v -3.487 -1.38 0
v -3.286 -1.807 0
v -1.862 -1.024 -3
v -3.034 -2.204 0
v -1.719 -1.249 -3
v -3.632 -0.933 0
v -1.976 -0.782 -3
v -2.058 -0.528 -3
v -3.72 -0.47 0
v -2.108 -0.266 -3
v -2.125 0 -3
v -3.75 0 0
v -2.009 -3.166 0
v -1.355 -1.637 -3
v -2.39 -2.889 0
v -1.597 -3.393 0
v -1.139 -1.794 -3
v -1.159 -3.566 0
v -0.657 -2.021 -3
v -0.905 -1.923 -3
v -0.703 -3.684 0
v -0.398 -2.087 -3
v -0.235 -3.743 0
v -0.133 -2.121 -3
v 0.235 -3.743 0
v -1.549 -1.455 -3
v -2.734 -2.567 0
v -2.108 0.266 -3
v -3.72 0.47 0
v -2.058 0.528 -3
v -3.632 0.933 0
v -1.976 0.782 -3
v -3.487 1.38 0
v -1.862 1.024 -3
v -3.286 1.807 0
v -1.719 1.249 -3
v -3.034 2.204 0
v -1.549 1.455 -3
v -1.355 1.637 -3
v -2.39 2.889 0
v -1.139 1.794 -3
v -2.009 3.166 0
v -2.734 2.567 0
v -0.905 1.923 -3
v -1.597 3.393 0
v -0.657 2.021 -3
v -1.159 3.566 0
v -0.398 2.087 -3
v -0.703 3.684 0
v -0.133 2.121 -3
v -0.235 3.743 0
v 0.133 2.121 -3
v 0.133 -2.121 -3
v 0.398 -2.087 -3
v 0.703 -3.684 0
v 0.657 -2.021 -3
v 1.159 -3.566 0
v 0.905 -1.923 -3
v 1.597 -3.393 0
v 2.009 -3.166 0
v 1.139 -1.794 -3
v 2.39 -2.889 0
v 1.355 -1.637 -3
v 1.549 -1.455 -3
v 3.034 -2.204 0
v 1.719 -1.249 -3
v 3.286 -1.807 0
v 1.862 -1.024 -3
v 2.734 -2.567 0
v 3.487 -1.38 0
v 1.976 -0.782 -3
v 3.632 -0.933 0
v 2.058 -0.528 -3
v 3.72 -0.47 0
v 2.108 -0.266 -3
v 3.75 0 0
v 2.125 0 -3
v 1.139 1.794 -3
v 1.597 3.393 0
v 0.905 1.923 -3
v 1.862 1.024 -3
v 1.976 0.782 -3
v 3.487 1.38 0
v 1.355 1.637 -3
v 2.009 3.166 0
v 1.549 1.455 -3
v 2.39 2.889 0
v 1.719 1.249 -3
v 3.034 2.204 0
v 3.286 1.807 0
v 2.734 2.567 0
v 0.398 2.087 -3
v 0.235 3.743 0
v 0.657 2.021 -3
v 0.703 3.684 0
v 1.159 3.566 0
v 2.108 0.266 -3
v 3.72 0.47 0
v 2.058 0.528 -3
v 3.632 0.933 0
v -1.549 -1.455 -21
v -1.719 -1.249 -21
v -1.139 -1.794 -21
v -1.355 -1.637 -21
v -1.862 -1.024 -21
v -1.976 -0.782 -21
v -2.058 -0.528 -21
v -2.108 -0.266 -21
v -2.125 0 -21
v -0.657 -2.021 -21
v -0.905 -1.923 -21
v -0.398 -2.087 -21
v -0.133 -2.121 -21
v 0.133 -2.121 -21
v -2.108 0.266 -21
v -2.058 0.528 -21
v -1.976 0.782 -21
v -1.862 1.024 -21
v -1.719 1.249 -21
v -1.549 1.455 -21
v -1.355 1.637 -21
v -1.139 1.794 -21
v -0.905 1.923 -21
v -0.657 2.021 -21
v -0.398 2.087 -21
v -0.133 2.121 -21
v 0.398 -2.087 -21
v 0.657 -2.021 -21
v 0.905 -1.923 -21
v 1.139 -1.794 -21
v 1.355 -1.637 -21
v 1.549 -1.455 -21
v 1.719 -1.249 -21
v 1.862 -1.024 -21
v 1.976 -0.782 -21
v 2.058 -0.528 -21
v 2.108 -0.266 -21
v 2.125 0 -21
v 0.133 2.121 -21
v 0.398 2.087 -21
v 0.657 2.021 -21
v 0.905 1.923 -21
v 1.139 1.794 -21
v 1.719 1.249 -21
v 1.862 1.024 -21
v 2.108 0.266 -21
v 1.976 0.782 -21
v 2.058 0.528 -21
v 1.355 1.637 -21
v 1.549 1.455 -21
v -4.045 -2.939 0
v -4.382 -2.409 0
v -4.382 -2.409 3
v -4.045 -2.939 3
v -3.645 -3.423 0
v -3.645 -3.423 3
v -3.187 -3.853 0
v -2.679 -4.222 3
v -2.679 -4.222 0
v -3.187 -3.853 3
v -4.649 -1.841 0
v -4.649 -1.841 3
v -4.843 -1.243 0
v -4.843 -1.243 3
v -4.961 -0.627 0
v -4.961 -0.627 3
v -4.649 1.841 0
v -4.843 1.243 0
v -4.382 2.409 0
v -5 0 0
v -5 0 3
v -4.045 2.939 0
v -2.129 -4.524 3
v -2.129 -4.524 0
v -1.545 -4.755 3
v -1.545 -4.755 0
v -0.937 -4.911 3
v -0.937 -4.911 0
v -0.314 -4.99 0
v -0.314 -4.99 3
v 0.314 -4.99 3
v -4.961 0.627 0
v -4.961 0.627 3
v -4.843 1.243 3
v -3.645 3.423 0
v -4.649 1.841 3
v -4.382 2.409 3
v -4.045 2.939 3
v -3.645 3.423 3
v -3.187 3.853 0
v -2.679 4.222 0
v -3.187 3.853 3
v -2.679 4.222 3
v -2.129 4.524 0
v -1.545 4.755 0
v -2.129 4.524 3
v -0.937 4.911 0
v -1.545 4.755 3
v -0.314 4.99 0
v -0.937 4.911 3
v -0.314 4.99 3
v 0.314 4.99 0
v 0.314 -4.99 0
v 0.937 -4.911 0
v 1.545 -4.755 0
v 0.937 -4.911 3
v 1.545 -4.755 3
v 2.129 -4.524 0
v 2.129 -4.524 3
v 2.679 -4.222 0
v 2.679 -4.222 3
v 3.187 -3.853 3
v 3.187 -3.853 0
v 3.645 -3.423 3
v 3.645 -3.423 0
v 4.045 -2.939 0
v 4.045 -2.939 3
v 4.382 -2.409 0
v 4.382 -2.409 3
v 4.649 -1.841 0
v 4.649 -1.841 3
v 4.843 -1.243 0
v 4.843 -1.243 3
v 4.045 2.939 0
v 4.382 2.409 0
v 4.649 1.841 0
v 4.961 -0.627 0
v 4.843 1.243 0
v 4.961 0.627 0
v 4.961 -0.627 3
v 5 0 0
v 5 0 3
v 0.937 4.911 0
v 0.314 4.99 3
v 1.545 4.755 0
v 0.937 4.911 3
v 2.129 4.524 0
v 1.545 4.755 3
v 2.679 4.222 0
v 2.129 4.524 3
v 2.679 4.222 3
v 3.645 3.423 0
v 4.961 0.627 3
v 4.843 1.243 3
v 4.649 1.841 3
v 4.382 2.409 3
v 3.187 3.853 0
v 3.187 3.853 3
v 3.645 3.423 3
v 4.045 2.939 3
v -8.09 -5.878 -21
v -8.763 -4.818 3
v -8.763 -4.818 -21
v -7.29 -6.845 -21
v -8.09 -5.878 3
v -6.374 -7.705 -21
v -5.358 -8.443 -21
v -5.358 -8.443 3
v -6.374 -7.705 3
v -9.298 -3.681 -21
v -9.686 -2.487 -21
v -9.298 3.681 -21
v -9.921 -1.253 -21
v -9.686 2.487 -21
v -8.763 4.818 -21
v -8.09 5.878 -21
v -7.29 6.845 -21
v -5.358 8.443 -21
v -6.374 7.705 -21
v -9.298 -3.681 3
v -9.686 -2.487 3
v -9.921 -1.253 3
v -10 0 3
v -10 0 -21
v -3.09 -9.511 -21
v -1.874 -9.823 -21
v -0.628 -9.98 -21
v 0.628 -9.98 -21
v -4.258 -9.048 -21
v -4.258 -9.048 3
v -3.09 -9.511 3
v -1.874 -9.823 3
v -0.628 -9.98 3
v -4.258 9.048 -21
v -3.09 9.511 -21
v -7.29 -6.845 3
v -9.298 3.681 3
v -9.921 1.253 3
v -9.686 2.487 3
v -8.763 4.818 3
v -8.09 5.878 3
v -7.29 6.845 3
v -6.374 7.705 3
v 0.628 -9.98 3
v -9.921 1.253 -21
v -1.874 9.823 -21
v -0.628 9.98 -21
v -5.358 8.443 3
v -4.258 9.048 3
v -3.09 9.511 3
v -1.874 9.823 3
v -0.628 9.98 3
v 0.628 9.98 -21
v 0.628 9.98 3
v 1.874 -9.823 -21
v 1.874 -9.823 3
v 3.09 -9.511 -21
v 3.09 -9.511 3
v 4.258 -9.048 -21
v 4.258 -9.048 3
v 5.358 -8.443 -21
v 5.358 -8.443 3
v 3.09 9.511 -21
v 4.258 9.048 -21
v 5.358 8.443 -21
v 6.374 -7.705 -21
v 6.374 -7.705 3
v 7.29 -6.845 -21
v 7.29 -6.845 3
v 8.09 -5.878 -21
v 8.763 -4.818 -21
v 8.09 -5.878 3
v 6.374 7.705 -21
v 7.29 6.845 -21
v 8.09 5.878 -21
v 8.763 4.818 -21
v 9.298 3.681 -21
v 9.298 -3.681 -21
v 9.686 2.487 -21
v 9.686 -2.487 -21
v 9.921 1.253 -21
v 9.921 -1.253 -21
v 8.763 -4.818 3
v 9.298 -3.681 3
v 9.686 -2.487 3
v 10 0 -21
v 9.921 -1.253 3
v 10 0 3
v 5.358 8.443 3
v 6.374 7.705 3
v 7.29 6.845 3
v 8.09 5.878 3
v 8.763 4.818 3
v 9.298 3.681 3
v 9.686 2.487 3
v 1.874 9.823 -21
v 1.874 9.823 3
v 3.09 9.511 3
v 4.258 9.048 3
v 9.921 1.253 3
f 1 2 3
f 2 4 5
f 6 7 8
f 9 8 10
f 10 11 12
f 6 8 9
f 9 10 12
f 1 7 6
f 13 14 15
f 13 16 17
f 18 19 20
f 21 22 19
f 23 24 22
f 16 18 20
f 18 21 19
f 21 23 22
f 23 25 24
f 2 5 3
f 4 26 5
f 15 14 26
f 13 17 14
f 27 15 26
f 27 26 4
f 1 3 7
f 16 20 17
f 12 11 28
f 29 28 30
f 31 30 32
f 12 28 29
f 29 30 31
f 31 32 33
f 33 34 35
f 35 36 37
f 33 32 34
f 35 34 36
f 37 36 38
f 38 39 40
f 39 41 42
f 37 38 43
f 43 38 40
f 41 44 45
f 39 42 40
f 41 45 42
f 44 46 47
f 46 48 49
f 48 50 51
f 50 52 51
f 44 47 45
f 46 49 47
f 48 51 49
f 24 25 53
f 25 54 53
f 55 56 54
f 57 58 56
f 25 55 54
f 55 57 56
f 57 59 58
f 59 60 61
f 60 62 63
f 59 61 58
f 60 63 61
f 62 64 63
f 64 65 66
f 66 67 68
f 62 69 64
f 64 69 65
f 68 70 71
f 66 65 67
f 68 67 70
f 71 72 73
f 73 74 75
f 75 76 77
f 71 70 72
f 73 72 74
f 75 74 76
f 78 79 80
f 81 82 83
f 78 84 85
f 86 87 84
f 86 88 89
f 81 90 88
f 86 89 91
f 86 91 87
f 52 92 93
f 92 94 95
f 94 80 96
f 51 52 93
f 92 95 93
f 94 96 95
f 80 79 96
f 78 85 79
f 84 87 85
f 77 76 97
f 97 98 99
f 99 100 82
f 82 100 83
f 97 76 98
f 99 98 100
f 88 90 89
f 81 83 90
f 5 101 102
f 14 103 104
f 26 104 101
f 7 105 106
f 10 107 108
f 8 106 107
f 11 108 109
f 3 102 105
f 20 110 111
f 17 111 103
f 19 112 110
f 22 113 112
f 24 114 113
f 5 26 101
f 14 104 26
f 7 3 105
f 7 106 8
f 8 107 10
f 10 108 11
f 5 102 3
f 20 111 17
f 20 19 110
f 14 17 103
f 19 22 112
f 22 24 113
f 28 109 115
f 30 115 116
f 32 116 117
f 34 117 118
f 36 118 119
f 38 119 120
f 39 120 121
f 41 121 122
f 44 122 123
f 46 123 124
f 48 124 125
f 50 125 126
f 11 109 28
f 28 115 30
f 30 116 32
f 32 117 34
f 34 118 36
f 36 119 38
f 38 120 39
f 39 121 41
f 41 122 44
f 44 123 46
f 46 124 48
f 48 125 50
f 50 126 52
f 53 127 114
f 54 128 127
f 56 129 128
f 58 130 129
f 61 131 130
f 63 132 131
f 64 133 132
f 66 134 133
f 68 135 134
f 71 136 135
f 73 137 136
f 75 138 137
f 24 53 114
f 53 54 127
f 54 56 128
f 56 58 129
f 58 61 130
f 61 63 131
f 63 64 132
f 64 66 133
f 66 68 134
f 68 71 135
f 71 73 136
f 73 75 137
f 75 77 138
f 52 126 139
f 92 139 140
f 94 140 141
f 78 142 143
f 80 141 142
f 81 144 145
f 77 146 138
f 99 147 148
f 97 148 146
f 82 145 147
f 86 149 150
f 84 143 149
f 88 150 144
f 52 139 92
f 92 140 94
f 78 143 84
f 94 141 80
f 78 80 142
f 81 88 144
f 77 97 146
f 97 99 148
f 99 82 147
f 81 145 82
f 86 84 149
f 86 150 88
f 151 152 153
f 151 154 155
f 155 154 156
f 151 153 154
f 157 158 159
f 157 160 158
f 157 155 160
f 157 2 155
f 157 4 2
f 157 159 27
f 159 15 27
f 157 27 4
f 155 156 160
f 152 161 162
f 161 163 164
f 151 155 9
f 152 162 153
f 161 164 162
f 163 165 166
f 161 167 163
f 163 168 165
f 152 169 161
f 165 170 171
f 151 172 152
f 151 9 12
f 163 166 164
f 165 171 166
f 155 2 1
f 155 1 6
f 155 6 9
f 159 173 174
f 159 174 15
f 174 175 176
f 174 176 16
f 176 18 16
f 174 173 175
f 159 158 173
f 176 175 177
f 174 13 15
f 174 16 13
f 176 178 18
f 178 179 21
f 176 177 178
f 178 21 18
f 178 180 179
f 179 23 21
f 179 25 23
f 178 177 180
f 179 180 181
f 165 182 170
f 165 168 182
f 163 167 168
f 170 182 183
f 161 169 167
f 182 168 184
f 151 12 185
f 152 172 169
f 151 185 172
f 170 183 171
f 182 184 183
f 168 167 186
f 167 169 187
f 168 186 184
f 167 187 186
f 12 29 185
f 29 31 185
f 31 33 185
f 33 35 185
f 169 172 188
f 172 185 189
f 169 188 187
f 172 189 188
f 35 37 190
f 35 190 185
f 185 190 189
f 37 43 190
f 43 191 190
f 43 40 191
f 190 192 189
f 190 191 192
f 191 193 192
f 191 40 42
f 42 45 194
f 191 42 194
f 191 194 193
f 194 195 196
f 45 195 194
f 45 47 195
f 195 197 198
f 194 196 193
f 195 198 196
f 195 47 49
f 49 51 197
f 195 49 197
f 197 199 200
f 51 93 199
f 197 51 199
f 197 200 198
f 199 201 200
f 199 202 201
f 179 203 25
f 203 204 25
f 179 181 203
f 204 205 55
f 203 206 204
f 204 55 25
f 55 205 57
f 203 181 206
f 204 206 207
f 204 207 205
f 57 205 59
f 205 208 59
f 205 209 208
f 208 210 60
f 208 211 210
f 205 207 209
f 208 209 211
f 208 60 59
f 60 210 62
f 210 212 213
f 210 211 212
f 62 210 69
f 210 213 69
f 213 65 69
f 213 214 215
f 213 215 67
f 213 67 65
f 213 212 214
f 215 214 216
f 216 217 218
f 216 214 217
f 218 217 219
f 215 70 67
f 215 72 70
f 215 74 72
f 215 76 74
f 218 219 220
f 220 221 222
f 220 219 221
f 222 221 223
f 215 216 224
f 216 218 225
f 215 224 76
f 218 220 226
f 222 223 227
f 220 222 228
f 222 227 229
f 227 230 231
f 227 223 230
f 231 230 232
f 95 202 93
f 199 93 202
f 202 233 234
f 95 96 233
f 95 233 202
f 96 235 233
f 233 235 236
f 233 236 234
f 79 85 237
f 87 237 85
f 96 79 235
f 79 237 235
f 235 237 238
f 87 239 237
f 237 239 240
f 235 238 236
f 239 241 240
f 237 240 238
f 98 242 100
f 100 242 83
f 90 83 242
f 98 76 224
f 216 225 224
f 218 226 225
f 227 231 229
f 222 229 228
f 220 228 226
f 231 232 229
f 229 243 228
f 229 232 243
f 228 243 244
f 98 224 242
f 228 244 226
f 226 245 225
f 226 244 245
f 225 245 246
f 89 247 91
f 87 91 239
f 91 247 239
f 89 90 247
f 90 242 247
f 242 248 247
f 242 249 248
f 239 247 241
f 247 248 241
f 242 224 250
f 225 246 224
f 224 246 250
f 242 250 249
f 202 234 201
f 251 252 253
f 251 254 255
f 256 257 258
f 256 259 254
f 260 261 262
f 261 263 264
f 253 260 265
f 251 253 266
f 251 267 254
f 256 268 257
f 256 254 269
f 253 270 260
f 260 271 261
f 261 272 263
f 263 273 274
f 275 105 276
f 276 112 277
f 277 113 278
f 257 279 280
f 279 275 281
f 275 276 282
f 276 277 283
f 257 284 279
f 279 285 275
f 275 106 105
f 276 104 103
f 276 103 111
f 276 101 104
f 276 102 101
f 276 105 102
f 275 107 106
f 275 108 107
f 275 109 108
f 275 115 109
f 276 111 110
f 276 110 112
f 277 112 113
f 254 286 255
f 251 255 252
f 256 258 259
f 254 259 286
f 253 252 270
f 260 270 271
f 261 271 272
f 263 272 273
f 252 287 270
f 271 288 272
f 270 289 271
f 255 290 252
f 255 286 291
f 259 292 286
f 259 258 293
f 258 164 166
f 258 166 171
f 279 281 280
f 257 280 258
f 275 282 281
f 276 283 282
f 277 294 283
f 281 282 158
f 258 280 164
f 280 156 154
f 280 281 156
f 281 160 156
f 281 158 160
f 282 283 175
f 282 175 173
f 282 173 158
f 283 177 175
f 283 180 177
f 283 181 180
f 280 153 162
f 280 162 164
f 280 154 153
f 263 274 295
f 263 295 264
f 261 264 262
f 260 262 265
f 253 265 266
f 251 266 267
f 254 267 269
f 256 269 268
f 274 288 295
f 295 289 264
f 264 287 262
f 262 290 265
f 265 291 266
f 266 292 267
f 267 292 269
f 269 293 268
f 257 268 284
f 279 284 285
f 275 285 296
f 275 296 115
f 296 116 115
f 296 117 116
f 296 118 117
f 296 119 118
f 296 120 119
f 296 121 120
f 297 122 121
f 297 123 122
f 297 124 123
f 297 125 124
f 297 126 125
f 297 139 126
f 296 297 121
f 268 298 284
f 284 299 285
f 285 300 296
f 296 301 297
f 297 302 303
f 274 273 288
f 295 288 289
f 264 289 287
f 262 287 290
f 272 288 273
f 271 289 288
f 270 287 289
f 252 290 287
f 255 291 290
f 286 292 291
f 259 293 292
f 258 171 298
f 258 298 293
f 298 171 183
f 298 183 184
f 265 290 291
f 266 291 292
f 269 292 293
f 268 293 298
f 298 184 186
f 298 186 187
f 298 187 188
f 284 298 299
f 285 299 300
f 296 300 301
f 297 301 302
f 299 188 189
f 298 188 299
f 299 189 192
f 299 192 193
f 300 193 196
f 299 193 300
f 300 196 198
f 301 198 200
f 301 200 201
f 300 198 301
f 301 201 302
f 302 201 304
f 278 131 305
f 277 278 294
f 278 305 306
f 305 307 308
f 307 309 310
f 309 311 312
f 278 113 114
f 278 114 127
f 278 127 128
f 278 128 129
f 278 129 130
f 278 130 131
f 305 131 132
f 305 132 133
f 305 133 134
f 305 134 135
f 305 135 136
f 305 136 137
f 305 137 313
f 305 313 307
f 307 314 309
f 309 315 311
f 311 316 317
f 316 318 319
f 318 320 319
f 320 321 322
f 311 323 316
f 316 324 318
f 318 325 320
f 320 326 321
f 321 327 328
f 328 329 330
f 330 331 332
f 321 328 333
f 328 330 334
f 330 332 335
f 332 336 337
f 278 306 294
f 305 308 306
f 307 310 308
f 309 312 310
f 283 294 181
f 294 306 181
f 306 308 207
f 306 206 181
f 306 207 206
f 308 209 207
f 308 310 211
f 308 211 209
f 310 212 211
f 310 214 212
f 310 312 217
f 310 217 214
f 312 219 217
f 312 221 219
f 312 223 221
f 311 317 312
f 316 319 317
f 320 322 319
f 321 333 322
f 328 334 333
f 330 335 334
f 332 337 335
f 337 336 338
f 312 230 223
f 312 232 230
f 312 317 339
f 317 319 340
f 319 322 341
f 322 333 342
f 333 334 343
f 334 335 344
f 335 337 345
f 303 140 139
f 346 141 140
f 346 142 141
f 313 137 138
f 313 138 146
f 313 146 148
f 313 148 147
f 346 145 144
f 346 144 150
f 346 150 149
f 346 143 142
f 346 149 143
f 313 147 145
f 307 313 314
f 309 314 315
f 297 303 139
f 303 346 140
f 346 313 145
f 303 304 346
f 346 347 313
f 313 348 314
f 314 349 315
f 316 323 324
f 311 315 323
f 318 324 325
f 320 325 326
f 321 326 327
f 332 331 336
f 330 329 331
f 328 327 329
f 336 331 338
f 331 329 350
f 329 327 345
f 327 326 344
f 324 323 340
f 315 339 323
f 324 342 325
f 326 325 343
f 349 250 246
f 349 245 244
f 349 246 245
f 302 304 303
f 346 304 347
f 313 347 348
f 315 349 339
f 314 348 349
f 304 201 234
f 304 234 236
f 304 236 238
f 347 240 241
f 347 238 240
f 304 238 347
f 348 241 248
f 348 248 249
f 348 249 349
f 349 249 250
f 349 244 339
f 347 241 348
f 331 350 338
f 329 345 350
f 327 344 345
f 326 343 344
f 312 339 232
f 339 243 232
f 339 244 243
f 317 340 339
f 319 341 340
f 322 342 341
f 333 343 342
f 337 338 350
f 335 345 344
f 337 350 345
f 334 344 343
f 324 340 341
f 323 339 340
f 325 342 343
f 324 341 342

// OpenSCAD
$fn = 50;

difference() {
	union() {
		translate(v = [0, 0, -21.0]) {
			cylinder(h = 24, r = 10.0);
		}
	}
	union() {
		translate(v = [0, 0, 0]) {
			rotate(a = [0, 0, 0]) {
				difference() {
					union() {
						translate(v = [0, 0, -24.0]) {
							cylinder(h = 24, r = 2.0);
						}
						translate(v = [0, 0, -3]) {
							cylinder(h = 3, r1 = 2.125, r2 = 3.75);
						}
						translate(v = [0, 0, -24.0]) {
							cylinder(h = 24, r = 2.125);
						}
						translate(v = [0, 0, -24.0]) {
							cylinder(h = 24, r = 2.0);
						}
					}
					union();
				}
			}
		}
		#cylinder(h = 3, r = 5.0);
	}
}
